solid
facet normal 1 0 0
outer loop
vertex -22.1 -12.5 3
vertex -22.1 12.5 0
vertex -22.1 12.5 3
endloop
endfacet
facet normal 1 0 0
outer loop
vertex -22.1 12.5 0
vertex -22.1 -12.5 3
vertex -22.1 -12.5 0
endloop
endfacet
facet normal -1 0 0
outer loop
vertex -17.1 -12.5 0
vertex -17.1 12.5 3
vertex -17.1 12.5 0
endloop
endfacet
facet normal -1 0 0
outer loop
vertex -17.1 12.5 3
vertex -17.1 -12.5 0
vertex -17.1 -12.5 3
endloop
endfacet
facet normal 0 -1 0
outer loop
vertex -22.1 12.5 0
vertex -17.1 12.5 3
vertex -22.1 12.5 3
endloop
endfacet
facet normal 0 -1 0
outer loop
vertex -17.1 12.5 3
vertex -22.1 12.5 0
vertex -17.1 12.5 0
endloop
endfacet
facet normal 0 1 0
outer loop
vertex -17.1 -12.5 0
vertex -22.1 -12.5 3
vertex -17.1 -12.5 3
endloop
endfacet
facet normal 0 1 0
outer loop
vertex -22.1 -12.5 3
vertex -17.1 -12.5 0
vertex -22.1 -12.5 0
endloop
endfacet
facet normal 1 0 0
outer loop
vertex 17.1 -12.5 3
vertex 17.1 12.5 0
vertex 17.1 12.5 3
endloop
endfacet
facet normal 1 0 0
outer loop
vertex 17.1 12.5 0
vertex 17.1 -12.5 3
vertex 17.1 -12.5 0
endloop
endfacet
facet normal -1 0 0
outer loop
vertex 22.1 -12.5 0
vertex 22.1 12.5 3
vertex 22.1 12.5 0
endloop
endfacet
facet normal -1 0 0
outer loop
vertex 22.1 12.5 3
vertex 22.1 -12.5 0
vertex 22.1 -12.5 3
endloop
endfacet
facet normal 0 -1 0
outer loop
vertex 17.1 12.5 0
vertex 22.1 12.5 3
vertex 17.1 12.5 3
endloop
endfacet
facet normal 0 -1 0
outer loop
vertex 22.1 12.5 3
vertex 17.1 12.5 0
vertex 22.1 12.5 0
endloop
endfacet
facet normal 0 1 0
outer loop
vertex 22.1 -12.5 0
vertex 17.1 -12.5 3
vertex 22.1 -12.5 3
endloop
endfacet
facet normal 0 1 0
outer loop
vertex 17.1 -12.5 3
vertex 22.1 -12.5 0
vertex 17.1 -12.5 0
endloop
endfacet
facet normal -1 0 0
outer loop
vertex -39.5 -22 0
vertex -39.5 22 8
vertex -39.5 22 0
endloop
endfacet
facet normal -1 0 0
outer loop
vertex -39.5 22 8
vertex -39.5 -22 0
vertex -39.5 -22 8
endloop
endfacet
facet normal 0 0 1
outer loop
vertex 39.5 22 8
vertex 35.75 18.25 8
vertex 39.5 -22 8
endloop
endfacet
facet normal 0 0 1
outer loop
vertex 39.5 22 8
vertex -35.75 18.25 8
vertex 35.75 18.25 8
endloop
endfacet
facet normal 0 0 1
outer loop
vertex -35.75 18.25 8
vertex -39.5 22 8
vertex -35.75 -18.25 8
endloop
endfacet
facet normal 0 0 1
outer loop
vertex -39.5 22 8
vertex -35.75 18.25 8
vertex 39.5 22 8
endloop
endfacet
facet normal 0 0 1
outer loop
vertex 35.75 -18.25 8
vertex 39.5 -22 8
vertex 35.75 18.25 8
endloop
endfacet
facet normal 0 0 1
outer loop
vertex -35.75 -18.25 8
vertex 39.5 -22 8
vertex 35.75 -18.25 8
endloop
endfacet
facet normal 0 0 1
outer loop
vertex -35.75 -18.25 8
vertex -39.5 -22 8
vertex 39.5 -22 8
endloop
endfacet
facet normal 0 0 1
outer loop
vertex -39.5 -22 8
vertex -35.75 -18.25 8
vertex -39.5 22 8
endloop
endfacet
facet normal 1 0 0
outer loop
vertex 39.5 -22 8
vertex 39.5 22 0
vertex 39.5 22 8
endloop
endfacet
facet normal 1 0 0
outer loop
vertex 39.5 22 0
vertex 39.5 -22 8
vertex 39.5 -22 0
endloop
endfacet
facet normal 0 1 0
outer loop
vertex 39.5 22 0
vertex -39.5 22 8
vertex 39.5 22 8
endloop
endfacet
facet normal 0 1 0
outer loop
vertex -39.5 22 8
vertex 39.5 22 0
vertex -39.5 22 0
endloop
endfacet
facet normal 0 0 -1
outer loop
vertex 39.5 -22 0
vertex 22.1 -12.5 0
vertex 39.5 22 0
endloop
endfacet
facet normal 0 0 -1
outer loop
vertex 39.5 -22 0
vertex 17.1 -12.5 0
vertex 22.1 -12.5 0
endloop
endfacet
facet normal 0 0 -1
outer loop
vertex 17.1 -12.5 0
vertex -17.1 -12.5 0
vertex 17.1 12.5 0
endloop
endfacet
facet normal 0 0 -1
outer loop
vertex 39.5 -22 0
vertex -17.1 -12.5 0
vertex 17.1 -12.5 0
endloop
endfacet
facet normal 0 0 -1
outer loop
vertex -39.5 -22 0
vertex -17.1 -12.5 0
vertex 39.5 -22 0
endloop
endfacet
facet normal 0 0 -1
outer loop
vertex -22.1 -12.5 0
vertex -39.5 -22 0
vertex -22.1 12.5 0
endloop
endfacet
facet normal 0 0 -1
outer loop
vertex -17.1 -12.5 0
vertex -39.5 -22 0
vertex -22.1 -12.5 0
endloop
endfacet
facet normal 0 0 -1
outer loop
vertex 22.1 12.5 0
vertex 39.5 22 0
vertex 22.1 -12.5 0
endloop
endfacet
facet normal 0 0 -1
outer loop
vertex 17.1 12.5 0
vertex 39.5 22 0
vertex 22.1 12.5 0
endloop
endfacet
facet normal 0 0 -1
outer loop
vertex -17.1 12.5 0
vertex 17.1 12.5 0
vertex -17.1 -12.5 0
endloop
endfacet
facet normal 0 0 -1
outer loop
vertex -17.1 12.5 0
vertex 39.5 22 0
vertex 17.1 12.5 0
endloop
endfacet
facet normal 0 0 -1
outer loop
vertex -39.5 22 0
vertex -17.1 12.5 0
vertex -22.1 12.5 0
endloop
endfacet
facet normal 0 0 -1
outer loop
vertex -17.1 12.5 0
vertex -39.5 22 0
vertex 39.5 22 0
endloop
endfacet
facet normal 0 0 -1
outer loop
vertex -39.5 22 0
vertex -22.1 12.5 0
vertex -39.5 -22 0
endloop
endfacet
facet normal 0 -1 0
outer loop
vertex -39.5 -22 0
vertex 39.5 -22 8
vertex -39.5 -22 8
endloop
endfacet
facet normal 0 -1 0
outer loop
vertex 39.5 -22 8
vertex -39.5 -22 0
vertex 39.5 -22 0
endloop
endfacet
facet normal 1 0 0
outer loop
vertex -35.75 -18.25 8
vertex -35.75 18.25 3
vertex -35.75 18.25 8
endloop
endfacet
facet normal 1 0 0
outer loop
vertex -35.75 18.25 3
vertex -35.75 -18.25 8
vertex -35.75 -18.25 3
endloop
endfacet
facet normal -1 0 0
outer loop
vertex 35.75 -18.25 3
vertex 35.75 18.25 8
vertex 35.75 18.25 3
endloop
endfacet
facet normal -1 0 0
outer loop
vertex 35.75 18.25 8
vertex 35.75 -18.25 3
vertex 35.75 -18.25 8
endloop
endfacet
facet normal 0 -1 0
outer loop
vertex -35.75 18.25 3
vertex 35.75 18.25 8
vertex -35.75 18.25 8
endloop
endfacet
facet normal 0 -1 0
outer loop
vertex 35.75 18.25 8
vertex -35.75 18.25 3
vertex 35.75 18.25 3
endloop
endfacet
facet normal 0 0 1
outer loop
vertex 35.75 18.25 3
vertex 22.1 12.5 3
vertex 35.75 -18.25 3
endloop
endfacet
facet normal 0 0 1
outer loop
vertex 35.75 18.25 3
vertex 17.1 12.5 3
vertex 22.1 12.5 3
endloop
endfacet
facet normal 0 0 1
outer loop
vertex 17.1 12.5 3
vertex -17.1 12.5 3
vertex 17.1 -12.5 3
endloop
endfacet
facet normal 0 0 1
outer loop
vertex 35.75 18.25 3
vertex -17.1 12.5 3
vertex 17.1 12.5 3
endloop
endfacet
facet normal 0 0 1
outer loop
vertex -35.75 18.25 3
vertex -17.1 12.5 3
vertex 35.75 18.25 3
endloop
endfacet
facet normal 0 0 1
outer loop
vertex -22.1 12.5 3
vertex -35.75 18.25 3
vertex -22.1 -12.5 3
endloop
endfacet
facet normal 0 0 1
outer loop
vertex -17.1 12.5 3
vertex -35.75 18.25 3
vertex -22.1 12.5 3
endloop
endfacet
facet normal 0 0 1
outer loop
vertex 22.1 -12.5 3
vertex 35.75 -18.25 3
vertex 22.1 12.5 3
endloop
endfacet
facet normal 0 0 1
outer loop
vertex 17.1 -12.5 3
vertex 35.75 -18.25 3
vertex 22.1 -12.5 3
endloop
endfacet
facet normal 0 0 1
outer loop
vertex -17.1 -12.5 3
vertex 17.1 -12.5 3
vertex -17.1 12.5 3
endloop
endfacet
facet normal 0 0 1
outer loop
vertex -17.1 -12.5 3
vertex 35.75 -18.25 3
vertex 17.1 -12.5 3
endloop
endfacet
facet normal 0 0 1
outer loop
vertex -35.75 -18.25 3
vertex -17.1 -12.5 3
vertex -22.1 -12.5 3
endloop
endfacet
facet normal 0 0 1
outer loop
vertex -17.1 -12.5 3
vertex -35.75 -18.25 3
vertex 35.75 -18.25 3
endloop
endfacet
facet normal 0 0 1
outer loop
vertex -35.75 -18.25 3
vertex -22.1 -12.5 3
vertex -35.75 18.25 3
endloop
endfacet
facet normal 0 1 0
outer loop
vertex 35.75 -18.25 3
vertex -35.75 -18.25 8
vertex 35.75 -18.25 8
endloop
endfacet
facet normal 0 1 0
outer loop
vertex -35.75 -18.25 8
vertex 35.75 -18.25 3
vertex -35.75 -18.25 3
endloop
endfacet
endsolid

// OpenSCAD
// =======================================
// SCOUT Recon Rover V1
// Battery Tray BLACK V1
// Independent Version
// =======================================

$fn = 32;


// ================================
// DIMENSIONS
// ================================

// Battery placeholder size
battery_placeholder_length = 70;
battery_placeholder_width = 35;
battery_placeholder_height = 18;


// Printing clearances
battery_clearance = 1.5;


// Wall thickness
battery_tray_wall_thickness = 3;


// Retaining lip
battery_retaining_lip_height = 5;


// Strap slots
battery_strap_slot_width = 5;
battery_strap_slot_length = 25;



// ================================
// MODEL
// ================================

module SCOUT_Battery_Tray_BLACK_V1() {


    tray_outer_length =
        battery_placeholder_length
        + (battery_clearance * 2)
        + (battery_tray_wall_thickness * 2);


    tray_outer_width =
        battery_placeholder_width
        + (battery_clearance * 2)
        + (battery_tray_wall_thickness * 2);


    tray_height =
        battery_retaining_lip_height
        + battery_tray_wall_thickness;



    difference() {


        // Main tray
        translate([0,0,tray_height/2])
            cube(
                [
                tray_outer_length,
                tray_outer_width,
                tray_height
                ],
                center=true
            );



        // Battery cavity
        translate(
            [
            0,
            0,
            battery_tray_wall_thickness + tray_height/2
            ])
            cube(
                [
                battery_placeholder_length + battery_clearance,
                battery_placeholder_width + battery_clearance,
                tray_height
                ],
                center=true
            );



        // Strap holes

        slot_x = battery_placeholder_length * 0.28;


        for(xpos=[-slot_x,slot_x])
        {
            translate(
                [
                xpos,
                0,
                tray_height/2
                ])
                cube(
                    [
                    battery_strap_slot_width,
                    battery_strap_slot_length,
                    tray_height+2
                    ],
                    center=true
                );
        }

    }



    // Side retention rails

    for(side=[-1,1])
    {

        translate(
            [
            0,
            side*(tray_outer_width/2-1),
            battery_retaining_lip_height/2
            ])
            cube(
                [
                tray_outer_length,
                2,
                battery_retaining_lip_height
                ],
                center=true
            );

    }

}



SCOUT_Battery_Tray_BLACK_V1();
